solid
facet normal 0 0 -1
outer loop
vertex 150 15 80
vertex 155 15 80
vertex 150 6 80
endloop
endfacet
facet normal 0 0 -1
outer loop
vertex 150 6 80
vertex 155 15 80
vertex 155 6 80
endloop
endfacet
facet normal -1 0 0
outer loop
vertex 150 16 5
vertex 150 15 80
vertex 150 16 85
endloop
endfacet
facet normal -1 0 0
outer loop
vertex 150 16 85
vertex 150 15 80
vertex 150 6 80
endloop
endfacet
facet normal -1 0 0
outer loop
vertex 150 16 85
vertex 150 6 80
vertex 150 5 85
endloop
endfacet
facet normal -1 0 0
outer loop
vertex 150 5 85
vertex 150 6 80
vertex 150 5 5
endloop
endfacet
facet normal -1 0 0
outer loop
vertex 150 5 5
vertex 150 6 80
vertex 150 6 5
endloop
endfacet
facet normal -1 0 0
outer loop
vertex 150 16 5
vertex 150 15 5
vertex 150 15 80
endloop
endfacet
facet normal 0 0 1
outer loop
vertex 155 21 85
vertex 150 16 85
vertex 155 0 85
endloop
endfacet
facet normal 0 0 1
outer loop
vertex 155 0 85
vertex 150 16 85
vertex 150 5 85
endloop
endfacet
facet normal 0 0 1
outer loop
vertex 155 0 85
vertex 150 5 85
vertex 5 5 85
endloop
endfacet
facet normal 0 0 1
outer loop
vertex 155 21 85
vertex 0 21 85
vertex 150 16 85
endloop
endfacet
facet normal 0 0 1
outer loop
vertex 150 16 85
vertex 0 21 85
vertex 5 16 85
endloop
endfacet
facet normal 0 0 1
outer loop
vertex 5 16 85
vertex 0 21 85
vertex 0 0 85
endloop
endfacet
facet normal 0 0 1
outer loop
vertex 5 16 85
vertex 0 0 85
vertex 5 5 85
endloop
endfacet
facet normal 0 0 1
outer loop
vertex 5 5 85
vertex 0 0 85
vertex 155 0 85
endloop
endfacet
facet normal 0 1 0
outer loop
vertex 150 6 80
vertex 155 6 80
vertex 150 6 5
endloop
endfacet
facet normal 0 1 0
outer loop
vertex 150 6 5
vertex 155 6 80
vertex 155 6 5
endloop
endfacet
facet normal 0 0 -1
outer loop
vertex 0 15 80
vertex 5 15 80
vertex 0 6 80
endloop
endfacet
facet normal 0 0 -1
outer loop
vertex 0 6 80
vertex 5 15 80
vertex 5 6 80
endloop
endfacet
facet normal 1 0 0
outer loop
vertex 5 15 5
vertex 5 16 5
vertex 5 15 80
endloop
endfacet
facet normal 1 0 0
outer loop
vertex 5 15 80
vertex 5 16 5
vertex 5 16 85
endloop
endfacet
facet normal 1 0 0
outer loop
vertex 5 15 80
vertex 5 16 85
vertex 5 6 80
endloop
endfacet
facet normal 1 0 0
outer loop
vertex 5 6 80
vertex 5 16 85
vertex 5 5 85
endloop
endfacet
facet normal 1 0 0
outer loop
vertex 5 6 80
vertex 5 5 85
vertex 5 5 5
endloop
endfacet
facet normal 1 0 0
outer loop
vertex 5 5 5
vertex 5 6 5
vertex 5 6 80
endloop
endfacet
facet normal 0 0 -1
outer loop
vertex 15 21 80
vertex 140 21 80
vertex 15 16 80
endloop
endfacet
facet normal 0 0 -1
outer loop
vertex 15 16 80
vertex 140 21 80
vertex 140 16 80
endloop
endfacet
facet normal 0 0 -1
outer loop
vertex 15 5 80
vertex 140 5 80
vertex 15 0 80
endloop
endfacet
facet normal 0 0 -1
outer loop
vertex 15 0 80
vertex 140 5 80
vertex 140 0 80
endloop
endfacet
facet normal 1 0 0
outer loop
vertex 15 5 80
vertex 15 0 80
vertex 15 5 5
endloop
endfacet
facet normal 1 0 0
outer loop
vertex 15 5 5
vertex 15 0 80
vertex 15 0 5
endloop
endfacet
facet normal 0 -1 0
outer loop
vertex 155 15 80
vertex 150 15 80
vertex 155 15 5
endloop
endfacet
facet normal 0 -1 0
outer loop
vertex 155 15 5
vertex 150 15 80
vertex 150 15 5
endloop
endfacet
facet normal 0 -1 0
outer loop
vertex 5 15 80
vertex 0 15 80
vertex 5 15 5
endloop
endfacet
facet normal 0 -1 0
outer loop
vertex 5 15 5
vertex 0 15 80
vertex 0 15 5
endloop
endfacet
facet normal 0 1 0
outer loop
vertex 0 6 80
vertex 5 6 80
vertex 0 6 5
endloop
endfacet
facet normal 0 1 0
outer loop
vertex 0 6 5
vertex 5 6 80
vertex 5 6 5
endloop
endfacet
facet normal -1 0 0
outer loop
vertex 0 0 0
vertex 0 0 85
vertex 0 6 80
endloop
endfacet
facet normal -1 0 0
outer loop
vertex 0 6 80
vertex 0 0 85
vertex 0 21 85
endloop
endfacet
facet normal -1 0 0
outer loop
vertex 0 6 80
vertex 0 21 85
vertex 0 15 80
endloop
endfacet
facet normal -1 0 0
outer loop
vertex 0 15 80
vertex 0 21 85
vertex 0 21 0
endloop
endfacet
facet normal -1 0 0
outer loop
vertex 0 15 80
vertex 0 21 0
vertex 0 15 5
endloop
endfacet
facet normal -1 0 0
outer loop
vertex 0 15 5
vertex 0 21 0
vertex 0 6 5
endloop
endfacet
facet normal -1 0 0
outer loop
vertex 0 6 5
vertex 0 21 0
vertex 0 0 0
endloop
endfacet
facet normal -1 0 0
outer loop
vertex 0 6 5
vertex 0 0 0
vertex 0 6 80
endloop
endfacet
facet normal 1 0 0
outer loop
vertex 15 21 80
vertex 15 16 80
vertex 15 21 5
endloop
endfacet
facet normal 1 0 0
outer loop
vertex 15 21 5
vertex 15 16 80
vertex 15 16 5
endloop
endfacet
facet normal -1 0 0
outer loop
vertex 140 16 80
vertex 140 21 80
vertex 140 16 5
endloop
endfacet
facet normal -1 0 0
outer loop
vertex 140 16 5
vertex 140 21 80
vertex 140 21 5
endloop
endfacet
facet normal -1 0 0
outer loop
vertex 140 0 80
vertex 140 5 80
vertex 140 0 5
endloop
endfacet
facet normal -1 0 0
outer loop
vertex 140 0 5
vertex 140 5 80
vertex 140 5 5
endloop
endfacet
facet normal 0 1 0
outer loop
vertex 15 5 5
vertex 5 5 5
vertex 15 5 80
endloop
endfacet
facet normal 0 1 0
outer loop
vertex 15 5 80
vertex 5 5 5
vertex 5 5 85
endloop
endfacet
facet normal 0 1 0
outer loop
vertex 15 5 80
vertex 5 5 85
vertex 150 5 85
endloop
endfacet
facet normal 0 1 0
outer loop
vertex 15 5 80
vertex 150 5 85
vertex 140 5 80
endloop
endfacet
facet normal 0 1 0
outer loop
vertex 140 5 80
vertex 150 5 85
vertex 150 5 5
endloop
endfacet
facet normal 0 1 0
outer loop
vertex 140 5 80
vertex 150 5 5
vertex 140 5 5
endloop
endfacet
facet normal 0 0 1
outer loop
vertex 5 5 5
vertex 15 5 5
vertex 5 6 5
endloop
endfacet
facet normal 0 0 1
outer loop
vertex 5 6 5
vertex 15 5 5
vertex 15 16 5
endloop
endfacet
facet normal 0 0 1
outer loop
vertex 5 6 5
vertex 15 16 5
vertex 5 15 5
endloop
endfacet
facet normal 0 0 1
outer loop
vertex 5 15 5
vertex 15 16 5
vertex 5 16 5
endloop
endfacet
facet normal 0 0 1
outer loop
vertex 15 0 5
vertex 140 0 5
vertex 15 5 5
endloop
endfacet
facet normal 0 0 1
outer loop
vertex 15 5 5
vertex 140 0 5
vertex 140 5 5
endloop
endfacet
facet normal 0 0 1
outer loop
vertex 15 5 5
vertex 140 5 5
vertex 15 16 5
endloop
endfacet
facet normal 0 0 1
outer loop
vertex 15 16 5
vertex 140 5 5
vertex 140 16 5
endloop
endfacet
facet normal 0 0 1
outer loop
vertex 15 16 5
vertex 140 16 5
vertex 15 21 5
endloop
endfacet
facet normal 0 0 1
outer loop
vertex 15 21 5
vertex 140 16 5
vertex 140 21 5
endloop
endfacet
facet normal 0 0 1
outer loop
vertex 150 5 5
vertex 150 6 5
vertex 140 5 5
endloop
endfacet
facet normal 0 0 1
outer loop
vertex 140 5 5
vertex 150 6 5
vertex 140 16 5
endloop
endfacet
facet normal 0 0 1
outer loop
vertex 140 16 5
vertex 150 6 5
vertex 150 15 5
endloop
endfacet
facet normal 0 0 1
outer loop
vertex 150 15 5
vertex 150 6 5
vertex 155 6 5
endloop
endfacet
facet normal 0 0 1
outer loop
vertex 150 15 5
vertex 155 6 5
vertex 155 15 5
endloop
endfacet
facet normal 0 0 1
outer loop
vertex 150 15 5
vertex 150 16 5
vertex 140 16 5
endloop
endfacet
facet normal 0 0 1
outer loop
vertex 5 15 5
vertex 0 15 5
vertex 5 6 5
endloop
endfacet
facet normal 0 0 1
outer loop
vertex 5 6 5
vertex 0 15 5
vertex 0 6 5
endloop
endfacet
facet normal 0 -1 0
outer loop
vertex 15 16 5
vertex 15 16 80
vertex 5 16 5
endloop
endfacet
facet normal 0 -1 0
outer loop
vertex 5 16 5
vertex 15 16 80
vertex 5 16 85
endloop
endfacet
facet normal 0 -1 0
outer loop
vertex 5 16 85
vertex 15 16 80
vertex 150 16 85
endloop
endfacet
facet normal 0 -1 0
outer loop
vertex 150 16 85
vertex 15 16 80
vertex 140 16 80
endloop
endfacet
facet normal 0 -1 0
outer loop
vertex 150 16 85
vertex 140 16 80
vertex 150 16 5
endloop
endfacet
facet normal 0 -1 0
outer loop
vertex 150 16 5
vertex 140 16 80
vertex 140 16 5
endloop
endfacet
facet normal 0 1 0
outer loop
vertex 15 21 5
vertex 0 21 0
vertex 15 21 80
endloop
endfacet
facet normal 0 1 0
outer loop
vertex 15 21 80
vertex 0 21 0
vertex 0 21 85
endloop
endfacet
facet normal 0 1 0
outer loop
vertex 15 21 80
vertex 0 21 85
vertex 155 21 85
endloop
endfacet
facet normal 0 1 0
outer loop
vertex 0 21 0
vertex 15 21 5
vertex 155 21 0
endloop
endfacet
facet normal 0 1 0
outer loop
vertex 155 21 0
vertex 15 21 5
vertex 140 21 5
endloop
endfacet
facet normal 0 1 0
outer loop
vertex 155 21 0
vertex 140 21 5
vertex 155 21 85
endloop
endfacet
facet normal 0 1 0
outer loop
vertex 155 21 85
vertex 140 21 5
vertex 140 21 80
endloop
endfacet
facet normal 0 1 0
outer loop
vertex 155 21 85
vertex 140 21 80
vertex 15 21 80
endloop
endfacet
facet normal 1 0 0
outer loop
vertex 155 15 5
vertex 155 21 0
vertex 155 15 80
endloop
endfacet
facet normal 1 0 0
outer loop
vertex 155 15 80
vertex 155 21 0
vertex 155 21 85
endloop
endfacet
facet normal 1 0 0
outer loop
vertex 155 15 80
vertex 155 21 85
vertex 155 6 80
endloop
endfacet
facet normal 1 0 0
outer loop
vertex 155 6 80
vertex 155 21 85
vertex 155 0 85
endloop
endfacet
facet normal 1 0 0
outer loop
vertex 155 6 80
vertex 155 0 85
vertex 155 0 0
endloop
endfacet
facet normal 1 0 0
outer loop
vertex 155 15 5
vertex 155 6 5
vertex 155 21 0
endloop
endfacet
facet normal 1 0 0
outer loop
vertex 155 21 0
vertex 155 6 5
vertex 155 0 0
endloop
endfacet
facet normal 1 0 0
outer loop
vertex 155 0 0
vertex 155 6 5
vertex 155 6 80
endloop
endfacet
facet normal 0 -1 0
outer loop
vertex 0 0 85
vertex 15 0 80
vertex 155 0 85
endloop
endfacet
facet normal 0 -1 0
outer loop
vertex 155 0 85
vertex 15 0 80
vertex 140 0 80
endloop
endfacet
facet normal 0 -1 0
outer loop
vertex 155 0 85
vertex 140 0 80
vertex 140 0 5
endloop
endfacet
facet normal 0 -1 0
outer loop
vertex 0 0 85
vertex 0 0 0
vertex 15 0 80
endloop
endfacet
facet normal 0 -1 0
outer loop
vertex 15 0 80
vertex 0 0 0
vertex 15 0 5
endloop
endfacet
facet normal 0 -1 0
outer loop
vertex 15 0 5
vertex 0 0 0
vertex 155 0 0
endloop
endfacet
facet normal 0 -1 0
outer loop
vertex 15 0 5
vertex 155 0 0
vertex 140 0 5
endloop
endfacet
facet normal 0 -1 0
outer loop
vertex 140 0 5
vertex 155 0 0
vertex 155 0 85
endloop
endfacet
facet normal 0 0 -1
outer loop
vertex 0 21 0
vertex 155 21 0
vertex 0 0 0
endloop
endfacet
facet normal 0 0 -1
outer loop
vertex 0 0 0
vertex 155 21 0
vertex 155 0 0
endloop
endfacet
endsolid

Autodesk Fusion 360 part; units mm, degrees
sketch "Sketch1" plane through (0, 0, 0) normal (0, 0, 1) x (1, 0, 0)
  line L0 (0, 0) -> (155, 0)
  line L1 (155, 0) -> (155, 21)
  line L2 (155, 21) -> (0, 21)
  line L3 (0, 21) -> (0, 0)
  dimension "d1" = 155
  dimension "d2" = 21
extrude "Extrude1" add sketch "Sketch1" along normal blind 85
sketch "Sketch2" plane through (0, 0, 85) normal (0, 0, 1) x (-1, 0, 0)
  line L0 (0, -21) -> (0, 0)
  line L1 (-155, 0) -> (-155, -21)
  line L2 (-155, -21) -> (0, -21)
shell "Shell1" thickness 5 removed faces 1 at (51.6667, 7, 85)
sketch "Sketch3" plane through (0, 0, 85) normal (0, 0, 1) x (-1, 0, 0)
sketch "Sketch4" plane through (0, 0, 85) normal (0, 0, 1) x (-1, 0, 0)
sketch "Sketch5" plane through (0, 0, 85) normal (0, 0, 1) x (-1, 0, 0)
sketch "Sketch6" plane through (0, 0, 85) normal (0, 0, 1) x (-1, 0, 0)
sketch "Sketch7" plane through (0, 0, 85) normal (0, 0, 1) x (-1, 0, 0)
sketch "Sketch8" plane through (0, 0, 85) normal (0, 0, 1) x (-1, 0, 0)
sketch "Sketch9" plane through (0, 0, 85) normal (0, 0, 1) x (-1, 0, 0)
sketch "Sketch10" plane through (0, 0, 85) normal (0, 0, 1) x (-1, 0, 0)
  line L0 (-140, 0) -> (-15, 0)
  line L1 (-15, 0) -> (-15, -21)
  line L2 (-15, -21) -> (-140, -21)
  line L3 (-140, -21) -> (-140, 0)
extrude "Extrude2" cut sketch "Sketch10" against normal blind 80
sketch "Sketch11" plane through (0, 0, 85) normal (0, 0, 1) x (-1, 0, 0)
  line L0 (-15, 0) -> (-15, -5)
  line L1 (-15, -5) -> (-5, -5)
  line L2 (-5, -5) -> (-5, -16)
  line L3 (-5, -16) -> (-15, -16)
  line L4 (-15, -16) -> (-15, -21)
  line L5 (-15, -21) -> (0, -21)
  line L6 (0, -21) -> (0, 0)
  line L7 (0, 0) -> (-15, 0)
  line L8 (-6, -13) -> (0, -13)
  line L9 (0, -8) -> (-6, -8)
  line L10 (-6, -13) -> (-155, -13)
  line L11 (-155, -13) -> (-155, -8)
  line L12 (-155, -8) -> (-6, -8)
  line L13 (0, -13) -> (0, -8)
extrude "Extrude3" cut sketch "Sketch11" against normal blind 80 contours L2 L6 L8 L9 L13 | L2 L8 L9 L10 L11 L12
sketch "Sketch12" plane through (0, 0, 85) normal (0, 0, 1) x (-1, 0, 0)
  line L0 (0, -13) -> (-5, -13)
  line L1 (-5, -13) -> (-5, -16)
  line L2 (-5, -16) -> (-15, -16)
  line L3 (-15, -16) -> (-15, -21)
  line L4 (-15, -21) -> (0, -21)
  line L5 (0, -21) -> (0, -13)
sketch "Sketch13" plane through (0, 0, 85) normal (0, 0, 1) x (-1, 0, 0)
  line L0 (0, -15) -> (-185, -15)
  line L1 (-185, -15) -> (-185, -6)
  line L2 (-185, -6) -> (0, -6)
  line L3 (0, -6) -> (0, -15)
  dimension "d10" = 185
extrude "Extrude4" cut sketch "Sketch13" against normal blind 80
sketch "Sketch14" plane through (15, 0, 0) normal (1, 0, 0) x (0, 1, 0)
  line L0 (5, 5) -> (5, 85)
  line L1 (5, 85) -> (0, 85)
  line L2 (0, 85) -> (0, 5)
  line L3 (0, 5) -> (5, 5)
  line L4 (0, 85) -> (5, 85)
  line L5 (5, 85) -> (5, 80)
  line L6 (5, 80) -> (0, 80)
  line L7 (0, 80) -> (0, 85)
  dimension "d13" = 5
  dimension "d14" = 5
extrude "Extrude5" add sketch "Sketch14" along normal blind 125 contours L0 L1 L2 L4 L5 L6 L7
sketch "Sketch15" plane through (15, 0, 0) normal (1, 0, 0) x (0, 1, 0)
  line L0 (16, 85) -> (16, 5)
  line L1 (16, 5) -> (21, 5)
  line L2 (21, 5) -> (21, 85)
  line L3 (21, 85) -> (16, 85)
  line L4 (21, 85) -> (16, 85)
  line L5 (16, 85) -> (16, 80)
  line L6 (16, 80) -> (21, 80)
  line L7 (21, 80) -> (21, 85)
  dimension "d17" = 5
extrude "Extrude6" add sketch "Sketch15" along normal blind 125 contours L0 L2 L3 L4 L5 L6 L7
sketch "Sketch16" plane through (0, 6, 0) normal (0, 1, 0) x (-1, 0, 0)
  line L0 (-5, 85) -> (-5, 5)
  line L1 (-5, 5) -> (0, 5)
  line L2 (0, 5) -> (0, 85)
  line L3 (0, 85) -> (-5, 85)
  line L4 (0, 85) -> (-5, 85)
  line L5 (-5, 85) -> (-5, 80)
  line L6 (-5, 80) -> (0, 80)
  line L7 (0, 80) -> (0, 85)
  dimension "d20" = 5
extrude "Extrude7" add sketch "Sketch16" along normal blind 10 contours L0 L2 L3 L4 L5 L6 L7
sketch "Sketch17" plane through (0, 6, 0) normal (0, 1, 0) x (-1, 0, 0)
  line L0 (-150, 5) -> (-150, 85)
  line L1 (-150, 85) -> (-155, 85)
  line L2 (-155, 85) -> (-155, 5)
  line L3 (-155, 5) -> (-150, 5)
  line L4 (-155, 85) -> (-150, 85)
  line L5 (-150, 85) -> (-150, 80)
  line L6 (-150, 80) -> (-155, 80)
  line L7 (-155, 80) -> (-155, 85)
extrude "Extrude8" add sketch "Sketch17" along normal blind 10 contours L0 L1 L2 L4 L5 L6 L7
